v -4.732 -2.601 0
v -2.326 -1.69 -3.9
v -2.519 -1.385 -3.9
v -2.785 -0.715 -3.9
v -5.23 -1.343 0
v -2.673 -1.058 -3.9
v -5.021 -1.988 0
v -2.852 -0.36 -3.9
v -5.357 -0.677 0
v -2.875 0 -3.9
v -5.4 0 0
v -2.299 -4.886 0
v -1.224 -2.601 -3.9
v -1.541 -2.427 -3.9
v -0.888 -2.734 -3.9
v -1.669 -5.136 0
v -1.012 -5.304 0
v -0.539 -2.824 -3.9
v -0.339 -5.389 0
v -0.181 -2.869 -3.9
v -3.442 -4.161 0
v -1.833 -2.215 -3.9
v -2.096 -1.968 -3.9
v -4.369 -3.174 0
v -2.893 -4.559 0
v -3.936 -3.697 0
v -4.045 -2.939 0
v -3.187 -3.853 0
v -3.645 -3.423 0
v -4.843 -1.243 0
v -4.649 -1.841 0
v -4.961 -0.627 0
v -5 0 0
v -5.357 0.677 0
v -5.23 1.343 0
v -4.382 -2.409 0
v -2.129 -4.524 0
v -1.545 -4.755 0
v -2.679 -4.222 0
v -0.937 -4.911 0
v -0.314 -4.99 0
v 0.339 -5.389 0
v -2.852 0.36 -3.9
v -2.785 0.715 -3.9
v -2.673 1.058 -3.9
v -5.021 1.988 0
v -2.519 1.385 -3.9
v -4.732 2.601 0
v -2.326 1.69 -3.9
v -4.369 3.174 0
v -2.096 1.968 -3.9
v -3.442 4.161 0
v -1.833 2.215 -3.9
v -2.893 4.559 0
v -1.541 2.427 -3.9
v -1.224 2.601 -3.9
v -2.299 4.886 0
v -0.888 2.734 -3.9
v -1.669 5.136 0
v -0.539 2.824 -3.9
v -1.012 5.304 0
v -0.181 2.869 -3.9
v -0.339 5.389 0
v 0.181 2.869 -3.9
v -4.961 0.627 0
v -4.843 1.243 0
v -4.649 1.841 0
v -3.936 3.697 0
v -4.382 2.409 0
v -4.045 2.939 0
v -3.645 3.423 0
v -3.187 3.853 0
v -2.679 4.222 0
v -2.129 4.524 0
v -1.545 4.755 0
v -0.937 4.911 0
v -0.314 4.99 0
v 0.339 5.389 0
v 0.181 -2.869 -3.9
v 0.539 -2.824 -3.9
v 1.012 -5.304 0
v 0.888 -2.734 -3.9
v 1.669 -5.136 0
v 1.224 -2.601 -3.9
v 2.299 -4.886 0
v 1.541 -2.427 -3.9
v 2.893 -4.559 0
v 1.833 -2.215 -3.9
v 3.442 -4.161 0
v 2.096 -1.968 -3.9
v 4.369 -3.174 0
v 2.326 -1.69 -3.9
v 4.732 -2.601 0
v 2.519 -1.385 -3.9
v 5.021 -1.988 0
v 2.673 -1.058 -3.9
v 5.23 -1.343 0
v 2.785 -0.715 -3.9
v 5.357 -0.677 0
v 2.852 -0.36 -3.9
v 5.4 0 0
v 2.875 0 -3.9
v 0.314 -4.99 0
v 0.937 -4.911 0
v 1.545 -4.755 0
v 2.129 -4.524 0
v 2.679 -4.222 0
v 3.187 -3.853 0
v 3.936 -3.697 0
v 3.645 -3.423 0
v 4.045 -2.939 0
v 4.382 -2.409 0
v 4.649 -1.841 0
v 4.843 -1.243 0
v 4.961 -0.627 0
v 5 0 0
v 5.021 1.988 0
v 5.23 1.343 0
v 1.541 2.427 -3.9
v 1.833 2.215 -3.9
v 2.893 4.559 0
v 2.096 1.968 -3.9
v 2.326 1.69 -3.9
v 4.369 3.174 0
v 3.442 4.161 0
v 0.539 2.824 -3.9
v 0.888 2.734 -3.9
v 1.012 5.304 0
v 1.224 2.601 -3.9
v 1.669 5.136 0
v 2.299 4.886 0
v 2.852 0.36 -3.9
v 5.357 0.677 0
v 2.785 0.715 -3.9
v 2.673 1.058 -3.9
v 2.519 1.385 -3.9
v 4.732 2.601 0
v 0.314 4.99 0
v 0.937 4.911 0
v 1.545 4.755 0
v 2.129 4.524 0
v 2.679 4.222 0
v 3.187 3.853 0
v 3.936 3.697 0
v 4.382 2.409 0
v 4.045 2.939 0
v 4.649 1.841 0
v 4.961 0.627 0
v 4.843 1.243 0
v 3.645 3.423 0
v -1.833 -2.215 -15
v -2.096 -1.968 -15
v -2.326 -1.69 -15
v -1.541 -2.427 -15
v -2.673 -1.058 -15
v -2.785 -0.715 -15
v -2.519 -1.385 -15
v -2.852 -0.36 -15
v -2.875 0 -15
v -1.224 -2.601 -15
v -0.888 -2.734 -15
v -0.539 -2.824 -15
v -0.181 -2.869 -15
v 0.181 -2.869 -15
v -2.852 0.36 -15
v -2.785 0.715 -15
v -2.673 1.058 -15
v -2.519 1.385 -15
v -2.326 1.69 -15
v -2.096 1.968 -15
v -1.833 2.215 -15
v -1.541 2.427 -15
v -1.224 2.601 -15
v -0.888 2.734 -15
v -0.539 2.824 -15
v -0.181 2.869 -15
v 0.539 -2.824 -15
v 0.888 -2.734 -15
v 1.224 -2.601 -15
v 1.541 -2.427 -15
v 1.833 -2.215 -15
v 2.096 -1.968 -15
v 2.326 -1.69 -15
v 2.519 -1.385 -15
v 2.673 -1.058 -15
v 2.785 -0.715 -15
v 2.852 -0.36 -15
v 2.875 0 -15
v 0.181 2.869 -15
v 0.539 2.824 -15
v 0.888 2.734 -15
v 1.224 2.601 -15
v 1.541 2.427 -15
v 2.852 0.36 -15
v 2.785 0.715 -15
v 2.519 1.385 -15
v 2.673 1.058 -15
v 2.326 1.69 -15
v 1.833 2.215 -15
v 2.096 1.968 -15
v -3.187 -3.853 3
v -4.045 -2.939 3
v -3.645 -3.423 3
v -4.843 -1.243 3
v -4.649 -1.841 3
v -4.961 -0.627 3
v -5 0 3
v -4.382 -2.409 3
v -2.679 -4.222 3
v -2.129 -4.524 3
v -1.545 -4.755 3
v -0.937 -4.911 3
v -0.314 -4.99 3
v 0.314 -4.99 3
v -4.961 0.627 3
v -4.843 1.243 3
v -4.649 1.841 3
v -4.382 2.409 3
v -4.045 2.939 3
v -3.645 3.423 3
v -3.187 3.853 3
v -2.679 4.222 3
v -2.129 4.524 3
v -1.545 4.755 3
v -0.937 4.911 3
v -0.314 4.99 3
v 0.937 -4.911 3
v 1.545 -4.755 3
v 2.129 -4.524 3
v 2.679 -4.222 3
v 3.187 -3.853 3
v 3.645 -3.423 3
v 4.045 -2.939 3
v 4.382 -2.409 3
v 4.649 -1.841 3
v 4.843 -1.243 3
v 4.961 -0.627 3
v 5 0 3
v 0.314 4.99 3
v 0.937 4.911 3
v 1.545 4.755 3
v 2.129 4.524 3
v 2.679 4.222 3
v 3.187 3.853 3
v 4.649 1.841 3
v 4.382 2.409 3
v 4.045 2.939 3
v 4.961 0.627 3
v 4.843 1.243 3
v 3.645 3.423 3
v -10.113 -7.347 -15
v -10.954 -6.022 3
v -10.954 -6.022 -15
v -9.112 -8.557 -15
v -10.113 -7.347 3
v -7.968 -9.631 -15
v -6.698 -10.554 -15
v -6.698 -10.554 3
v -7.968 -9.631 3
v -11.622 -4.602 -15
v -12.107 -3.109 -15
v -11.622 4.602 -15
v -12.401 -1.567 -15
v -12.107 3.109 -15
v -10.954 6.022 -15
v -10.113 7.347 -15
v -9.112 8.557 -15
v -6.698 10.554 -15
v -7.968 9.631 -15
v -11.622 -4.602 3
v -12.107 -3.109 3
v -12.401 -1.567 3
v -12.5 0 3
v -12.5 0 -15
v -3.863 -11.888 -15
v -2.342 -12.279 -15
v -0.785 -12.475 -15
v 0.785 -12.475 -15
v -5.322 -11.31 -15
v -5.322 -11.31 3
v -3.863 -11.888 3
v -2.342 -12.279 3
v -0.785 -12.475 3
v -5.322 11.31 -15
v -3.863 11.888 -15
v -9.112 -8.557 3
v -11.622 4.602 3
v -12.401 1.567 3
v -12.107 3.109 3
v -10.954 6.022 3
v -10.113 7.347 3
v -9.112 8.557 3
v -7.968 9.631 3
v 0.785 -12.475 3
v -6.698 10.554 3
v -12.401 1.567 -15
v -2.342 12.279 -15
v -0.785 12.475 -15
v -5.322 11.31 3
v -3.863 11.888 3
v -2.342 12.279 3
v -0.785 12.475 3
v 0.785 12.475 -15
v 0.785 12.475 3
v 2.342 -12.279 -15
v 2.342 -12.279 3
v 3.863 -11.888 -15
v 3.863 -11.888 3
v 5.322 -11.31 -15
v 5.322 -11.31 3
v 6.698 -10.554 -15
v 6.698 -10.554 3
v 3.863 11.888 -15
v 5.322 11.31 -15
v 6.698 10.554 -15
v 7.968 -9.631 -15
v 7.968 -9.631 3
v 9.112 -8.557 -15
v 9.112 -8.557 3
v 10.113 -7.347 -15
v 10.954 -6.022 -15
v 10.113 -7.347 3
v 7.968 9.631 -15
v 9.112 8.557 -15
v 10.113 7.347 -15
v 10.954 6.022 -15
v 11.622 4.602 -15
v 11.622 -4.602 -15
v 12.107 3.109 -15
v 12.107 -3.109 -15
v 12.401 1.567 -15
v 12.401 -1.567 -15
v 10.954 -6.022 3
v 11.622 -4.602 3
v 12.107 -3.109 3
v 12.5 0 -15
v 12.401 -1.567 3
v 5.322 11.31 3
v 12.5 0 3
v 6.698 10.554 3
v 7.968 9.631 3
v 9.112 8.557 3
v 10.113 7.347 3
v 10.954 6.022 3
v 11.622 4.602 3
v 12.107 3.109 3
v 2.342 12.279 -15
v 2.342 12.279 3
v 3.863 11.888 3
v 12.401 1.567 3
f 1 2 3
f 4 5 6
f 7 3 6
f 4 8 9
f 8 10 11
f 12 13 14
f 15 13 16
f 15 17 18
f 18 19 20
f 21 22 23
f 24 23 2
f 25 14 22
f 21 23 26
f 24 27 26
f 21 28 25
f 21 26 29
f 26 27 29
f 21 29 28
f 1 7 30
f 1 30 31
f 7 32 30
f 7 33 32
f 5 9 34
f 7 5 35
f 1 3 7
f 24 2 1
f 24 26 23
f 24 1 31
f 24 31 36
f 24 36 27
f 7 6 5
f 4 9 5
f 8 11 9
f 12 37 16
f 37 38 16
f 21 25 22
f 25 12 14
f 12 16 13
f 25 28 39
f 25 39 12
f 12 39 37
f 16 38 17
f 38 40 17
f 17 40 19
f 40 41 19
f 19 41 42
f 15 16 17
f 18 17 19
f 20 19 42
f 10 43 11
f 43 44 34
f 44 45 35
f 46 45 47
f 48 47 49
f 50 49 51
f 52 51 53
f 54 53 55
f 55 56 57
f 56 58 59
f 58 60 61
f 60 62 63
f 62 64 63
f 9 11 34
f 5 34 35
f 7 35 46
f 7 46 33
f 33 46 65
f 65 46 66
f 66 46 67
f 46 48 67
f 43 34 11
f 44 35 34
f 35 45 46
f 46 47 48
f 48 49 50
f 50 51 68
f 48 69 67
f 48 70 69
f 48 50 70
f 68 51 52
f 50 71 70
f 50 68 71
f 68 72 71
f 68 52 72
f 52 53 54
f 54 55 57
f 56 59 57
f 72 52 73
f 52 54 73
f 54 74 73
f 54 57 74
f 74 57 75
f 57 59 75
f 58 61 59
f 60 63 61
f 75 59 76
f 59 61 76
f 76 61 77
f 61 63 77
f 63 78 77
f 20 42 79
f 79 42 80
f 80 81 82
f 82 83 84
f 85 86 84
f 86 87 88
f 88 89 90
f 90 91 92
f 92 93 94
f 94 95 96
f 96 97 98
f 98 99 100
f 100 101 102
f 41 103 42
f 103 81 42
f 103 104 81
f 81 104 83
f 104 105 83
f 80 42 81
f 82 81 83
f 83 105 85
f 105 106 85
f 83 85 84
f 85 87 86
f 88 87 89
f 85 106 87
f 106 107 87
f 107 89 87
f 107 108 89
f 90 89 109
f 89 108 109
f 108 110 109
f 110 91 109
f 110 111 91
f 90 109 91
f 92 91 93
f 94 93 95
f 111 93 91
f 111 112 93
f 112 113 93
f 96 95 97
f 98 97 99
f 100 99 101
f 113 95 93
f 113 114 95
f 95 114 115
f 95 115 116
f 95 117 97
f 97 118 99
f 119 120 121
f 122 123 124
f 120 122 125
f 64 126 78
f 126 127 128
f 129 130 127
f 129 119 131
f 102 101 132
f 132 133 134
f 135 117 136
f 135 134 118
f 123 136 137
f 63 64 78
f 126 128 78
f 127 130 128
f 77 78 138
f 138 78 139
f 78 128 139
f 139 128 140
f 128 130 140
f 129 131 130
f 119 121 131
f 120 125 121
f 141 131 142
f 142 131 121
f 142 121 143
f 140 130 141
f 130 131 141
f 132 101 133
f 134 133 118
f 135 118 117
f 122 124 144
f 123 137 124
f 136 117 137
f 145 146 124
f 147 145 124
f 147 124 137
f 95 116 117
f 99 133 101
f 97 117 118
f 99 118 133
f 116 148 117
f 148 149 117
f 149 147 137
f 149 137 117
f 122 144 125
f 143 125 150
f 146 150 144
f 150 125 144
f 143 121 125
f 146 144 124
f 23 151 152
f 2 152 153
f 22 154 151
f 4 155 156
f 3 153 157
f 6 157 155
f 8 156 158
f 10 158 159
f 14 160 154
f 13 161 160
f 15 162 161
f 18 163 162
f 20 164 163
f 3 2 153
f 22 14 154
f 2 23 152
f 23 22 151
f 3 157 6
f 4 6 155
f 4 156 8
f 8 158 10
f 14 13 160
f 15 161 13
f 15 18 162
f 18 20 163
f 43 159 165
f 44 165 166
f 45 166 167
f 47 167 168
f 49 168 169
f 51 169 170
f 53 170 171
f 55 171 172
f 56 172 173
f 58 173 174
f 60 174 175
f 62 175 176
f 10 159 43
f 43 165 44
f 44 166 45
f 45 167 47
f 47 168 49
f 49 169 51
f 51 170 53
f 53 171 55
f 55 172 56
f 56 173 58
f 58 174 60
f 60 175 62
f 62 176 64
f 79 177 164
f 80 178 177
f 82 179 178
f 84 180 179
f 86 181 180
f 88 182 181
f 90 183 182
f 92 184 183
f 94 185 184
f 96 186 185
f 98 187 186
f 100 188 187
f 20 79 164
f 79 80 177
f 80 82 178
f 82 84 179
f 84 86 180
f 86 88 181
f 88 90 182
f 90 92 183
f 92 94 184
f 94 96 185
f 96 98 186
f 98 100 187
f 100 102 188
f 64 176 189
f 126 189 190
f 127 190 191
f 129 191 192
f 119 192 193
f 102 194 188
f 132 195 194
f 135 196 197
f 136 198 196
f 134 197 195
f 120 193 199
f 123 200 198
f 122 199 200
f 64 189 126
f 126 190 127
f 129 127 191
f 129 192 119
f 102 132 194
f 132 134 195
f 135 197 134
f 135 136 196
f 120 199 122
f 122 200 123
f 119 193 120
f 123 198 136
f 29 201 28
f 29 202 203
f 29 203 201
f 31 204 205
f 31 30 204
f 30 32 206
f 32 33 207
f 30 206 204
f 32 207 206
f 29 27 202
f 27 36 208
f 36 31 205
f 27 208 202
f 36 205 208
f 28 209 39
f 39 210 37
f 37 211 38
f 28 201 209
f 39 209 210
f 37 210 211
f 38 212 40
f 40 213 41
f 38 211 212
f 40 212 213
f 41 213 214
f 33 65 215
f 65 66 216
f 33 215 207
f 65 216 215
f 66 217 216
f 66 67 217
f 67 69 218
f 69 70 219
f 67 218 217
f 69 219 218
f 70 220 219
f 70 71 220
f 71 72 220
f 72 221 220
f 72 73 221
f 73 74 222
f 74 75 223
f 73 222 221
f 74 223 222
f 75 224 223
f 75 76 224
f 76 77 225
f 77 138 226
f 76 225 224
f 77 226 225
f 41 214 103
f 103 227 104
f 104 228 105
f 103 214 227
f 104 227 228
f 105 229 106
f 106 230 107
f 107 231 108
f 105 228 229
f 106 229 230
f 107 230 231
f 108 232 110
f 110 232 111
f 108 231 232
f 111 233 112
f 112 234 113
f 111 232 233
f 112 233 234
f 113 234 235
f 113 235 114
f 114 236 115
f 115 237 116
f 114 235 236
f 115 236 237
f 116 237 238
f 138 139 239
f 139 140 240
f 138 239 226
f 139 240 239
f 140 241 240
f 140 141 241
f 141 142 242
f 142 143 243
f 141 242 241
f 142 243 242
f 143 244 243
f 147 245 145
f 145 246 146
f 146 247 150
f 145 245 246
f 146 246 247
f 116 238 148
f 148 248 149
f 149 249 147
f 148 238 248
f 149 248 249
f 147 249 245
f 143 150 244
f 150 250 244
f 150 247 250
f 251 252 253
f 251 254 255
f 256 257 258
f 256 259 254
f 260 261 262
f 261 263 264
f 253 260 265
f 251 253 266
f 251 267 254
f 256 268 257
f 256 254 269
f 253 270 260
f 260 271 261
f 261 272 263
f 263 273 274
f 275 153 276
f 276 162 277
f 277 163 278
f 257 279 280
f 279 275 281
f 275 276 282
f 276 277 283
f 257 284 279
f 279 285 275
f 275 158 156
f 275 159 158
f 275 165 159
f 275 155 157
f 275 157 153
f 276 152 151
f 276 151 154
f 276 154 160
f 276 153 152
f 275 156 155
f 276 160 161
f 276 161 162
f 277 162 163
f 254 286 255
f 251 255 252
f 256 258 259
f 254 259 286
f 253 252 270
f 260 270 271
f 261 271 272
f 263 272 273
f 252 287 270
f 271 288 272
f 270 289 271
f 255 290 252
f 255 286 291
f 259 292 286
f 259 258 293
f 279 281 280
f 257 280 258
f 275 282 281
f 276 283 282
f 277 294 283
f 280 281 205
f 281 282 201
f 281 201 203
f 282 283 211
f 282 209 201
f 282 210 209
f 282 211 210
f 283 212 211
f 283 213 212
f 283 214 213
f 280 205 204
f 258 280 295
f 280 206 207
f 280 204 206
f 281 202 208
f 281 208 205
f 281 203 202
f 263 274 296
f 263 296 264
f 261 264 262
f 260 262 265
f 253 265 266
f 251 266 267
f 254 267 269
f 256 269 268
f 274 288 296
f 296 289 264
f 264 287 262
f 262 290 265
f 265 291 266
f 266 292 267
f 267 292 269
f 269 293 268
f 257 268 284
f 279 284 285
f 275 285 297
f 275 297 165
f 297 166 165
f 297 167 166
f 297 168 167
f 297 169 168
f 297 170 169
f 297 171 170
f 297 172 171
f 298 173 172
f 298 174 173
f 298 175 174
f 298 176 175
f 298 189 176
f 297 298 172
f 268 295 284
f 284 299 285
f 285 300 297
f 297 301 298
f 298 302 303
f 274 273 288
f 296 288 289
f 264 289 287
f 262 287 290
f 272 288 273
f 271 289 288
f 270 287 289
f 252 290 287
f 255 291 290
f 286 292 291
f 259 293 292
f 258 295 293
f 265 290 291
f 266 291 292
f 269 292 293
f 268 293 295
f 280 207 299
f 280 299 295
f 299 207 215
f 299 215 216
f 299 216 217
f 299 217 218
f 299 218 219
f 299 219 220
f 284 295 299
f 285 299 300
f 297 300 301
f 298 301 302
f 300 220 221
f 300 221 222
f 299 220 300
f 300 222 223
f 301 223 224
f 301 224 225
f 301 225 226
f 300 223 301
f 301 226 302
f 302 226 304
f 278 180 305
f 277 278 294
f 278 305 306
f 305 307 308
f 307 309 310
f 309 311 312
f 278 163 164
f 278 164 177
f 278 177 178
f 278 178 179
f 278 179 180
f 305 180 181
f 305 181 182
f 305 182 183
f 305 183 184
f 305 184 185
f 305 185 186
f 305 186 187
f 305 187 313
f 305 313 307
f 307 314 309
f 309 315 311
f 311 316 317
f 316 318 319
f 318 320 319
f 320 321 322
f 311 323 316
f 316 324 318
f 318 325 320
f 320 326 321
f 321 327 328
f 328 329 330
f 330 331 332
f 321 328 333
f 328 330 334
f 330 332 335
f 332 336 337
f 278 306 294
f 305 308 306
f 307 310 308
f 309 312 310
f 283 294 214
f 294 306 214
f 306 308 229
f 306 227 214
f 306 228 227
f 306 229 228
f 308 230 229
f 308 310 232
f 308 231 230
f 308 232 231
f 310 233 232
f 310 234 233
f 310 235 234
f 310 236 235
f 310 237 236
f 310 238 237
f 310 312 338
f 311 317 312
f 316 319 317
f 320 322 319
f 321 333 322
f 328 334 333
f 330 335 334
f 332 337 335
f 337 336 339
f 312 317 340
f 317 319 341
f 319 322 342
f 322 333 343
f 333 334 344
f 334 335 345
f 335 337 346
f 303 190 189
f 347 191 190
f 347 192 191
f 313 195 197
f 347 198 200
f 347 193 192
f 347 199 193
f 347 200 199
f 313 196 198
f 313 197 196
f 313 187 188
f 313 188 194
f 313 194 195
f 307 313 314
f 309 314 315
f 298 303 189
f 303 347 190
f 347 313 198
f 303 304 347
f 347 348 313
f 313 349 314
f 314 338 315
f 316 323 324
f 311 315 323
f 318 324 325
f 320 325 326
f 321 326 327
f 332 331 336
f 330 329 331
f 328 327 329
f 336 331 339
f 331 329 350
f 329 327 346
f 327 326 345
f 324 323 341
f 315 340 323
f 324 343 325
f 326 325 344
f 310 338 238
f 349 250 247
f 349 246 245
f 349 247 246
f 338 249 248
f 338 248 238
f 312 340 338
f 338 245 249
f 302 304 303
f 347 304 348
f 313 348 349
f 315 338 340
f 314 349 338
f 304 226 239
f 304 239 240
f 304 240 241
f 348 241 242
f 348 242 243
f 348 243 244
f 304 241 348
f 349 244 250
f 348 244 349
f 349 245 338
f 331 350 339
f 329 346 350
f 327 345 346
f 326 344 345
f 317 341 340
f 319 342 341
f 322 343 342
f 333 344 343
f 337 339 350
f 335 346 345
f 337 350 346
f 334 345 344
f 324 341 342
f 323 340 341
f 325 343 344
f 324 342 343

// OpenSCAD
$fn = 50;


difference() {
	union() {
		translate(v = [0, 0, -15.0000000000]) {
			cylinder(h = 18, r = 12.5000000000);
		}
	}
	union() {
		translate(v = [0, 0, 0]) {
			rotate(a = [0, 0, 0]) {
				difference() {
					union() {
						translate(v = [0, 0, -18.0000000000]) {
							cylinder(h = 18, r = 2.6000000000);
						}
						translate(v = [0, 0, -3.9000000000]) {
							cylinder(h = 3.9000000000, r1 = 2.8750000000, r2 = 5.4000000000);
						}
						translate(v = [0, 0, -18.0000000000]) {
							cylinder(h = 18, r = 2.8750000000);
						}
						translate(v = [0, 0, -18.0000000000]) {
							cylinder(h = 18, r = 2.6000000000);
						}
					}
					union();
				}
			}
		}
		#cylinder(h = 3, r = 5.0000000000);
	}
}
